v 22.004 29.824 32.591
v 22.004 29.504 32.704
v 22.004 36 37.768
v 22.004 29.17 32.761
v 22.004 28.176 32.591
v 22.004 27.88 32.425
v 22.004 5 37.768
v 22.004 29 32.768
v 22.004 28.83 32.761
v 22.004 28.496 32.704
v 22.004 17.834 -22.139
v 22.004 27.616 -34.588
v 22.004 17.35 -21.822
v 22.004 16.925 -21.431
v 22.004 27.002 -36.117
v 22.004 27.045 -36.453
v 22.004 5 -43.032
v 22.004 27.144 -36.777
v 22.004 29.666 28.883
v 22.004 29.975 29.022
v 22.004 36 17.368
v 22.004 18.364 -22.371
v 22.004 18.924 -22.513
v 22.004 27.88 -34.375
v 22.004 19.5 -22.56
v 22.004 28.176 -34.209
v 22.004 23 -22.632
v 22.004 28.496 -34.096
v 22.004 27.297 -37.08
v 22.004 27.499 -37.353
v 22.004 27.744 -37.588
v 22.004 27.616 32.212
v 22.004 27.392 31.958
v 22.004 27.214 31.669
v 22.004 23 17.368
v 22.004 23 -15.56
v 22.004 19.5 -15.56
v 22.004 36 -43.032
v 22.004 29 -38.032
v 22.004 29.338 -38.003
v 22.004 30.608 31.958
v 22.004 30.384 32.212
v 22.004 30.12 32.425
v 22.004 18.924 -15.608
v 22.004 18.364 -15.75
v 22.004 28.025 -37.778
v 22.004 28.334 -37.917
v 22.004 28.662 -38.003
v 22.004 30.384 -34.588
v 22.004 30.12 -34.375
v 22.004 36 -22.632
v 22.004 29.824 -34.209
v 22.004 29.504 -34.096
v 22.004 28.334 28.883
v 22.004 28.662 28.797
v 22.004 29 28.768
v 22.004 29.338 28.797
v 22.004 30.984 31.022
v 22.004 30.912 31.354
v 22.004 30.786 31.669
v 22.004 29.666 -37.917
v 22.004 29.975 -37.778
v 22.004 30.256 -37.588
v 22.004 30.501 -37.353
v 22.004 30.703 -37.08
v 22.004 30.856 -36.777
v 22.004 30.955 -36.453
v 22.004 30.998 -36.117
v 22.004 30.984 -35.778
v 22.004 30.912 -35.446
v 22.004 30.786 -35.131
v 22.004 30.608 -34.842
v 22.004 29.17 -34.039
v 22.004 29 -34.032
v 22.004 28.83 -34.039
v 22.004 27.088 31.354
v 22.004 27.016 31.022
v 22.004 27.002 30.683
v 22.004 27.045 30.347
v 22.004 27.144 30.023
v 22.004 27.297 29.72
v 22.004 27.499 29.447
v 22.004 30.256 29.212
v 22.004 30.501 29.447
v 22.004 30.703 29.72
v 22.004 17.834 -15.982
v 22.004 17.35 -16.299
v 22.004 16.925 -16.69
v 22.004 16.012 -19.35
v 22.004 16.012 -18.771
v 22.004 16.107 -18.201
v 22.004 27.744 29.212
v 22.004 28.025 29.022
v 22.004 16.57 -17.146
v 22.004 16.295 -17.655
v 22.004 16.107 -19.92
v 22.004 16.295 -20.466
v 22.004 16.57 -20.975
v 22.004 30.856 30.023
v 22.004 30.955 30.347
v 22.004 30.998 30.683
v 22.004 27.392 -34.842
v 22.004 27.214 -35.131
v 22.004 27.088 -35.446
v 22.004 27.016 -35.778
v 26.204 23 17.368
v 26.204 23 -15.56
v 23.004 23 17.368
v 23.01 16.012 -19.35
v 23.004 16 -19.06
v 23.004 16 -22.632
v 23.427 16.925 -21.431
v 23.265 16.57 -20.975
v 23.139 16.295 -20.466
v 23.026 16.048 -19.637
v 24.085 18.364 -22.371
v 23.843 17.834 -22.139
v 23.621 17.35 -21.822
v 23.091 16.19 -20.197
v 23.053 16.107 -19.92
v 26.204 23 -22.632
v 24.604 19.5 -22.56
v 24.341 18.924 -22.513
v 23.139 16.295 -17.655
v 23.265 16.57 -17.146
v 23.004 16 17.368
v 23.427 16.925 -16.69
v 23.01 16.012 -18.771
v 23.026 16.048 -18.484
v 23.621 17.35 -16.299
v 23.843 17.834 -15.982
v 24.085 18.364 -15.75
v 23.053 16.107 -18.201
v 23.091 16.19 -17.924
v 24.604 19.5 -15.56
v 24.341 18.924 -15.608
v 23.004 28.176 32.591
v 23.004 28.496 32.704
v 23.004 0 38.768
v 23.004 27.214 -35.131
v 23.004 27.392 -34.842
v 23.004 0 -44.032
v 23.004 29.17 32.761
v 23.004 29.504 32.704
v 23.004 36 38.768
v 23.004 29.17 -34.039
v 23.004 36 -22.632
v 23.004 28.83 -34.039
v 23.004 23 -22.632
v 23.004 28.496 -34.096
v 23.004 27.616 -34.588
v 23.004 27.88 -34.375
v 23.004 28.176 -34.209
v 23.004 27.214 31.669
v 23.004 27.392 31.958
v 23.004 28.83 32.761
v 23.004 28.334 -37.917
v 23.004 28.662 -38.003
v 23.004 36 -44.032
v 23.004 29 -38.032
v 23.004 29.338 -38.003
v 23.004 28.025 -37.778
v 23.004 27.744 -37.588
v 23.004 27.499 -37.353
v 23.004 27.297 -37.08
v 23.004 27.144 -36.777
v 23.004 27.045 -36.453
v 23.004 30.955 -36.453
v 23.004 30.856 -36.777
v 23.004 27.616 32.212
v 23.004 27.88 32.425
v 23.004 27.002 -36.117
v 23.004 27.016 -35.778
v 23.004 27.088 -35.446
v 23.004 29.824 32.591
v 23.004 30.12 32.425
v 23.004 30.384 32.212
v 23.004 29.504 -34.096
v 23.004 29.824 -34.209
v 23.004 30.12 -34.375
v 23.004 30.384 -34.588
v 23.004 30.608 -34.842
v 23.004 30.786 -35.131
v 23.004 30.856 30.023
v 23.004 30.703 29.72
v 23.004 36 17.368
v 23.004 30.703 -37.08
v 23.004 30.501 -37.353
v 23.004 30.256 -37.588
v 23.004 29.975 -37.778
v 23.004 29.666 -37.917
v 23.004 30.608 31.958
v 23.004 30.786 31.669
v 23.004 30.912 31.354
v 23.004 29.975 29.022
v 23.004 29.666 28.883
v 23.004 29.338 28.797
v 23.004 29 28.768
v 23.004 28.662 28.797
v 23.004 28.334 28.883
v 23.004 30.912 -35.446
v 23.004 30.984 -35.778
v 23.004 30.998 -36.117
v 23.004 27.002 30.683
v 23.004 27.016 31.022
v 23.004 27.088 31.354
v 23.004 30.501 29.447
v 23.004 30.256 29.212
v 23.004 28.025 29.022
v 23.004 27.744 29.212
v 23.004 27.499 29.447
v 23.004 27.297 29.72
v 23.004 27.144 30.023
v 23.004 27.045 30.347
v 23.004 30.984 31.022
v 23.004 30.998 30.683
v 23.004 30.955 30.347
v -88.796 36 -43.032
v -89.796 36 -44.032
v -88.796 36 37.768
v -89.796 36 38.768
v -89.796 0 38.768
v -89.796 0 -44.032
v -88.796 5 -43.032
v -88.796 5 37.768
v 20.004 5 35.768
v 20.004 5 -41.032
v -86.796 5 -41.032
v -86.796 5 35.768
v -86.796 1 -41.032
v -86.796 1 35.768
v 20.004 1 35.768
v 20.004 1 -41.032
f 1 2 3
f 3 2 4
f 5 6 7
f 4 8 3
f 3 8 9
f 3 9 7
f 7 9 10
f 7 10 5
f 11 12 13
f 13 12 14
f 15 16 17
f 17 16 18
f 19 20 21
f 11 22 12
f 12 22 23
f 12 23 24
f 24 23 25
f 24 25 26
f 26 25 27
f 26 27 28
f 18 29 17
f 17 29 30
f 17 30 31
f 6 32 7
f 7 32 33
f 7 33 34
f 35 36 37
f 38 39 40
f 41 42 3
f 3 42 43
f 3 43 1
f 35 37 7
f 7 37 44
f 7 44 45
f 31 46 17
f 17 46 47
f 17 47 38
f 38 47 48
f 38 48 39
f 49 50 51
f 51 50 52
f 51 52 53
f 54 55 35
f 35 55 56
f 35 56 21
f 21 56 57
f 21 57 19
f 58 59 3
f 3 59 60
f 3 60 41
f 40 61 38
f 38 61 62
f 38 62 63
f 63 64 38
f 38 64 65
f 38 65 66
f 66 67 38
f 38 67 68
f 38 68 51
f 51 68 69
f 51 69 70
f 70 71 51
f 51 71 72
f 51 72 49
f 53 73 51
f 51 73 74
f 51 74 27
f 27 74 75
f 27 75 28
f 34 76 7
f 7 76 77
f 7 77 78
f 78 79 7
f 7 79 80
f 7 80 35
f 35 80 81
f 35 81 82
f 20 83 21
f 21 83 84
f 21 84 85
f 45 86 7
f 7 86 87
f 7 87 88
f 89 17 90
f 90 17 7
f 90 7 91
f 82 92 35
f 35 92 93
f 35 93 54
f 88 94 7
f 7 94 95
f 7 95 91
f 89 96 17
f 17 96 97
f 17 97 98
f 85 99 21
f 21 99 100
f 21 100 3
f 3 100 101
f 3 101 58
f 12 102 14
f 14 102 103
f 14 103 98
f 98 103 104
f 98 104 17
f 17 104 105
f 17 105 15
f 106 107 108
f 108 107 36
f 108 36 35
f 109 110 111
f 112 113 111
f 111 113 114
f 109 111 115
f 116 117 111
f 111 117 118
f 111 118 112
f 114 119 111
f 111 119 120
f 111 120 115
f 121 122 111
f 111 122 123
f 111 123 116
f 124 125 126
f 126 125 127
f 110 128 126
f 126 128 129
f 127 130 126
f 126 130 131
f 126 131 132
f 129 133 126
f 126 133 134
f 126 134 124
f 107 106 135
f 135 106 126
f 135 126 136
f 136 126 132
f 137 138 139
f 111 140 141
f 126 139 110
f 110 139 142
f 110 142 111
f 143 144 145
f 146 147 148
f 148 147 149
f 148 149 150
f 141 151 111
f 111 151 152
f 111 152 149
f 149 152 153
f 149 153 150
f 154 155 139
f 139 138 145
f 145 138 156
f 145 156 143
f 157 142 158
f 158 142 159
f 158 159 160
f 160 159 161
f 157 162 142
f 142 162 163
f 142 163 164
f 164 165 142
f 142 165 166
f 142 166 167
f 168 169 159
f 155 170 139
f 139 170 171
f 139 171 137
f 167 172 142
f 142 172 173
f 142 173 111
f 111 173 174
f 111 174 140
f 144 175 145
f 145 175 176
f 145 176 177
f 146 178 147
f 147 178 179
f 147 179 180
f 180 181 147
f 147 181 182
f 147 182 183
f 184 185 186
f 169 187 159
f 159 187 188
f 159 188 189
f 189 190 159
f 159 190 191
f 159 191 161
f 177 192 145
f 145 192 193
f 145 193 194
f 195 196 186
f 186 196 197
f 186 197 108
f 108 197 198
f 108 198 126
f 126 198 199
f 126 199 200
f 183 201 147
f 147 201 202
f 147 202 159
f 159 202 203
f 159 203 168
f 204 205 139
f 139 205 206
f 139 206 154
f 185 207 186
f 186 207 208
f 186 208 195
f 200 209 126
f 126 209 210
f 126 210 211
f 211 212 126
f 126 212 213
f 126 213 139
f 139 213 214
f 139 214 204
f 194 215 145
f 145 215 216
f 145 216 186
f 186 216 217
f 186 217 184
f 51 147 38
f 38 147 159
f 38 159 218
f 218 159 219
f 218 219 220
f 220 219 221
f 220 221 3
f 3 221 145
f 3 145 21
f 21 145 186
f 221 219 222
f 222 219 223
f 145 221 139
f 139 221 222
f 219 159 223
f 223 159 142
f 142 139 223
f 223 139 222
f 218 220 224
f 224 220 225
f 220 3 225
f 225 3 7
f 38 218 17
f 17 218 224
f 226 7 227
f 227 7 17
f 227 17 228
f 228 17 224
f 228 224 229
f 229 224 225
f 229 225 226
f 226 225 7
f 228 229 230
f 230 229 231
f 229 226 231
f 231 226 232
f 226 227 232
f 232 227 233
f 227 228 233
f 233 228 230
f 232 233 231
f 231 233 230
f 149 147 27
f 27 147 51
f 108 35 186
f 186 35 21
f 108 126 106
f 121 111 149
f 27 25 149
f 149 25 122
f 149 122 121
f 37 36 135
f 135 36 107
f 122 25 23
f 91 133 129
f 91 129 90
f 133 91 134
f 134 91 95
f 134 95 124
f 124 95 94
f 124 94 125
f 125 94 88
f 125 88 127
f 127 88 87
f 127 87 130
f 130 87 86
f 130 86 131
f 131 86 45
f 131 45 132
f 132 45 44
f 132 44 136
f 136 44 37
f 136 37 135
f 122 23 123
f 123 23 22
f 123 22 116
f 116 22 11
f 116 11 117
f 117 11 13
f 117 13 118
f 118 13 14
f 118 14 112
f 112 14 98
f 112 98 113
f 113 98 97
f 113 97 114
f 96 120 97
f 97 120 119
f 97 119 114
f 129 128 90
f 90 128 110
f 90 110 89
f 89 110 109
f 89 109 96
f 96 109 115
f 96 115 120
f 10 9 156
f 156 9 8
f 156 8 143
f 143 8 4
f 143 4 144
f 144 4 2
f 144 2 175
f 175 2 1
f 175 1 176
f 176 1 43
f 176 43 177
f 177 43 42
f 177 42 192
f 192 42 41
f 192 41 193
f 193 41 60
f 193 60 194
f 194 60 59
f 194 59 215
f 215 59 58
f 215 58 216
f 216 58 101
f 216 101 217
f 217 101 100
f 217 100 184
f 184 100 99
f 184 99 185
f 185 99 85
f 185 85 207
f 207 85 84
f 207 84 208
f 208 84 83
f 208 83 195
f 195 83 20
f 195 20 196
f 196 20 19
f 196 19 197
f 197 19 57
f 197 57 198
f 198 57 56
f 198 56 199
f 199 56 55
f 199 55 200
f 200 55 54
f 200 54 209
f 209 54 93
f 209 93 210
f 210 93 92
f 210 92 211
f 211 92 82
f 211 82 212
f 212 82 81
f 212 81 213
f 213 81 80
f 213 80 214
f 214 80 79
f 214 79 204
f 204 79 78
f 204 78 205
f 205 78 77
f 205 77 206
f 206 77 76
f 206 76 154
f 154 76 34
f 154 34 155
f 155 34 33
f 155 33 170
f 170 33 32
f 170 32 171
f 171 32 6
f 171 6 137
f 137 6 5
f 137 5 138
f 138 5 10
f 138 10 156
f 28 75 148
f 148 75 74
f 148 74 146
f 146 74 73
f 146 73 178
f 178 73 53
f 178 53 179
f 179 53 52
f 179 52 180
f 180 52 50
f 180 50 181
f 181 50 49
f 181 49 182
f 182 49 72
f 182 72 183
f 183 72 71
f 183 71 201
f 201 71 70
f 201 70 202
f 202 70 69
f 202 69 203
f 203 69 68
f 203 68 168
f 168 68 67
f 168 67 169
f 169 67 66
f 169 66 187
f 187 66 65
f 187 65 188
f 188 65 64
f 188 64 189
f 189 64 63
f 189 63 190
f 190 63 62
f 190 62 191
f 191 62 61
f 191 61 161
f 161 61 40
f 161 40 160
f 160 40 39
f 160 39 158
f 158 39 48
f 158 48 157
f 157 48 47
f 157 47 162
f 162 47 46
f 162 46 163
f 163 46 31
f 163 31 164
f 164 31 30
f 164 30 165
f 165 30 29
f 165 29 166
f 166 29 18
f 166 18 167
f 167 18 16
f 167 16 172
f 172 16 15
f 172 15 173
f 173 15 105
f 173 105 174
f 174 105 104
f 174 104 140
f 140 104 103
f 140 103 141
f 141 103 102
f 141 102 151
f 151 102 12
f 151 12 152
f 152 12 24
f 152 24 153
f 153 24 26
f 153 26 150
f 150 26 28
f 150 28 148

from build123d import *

# Parameters (mm, degrees)
SKETCH1_W           = 112.8
SKETCH1_H           = 82.8
BOSS_EXTRUDE2_DEPTH = 36
SHELL1_T            = -1
SKETCH2_W           = 110.8
SKETCH2_H           = 80.8
SKETCH2_W_2         = 106.8
SKETCH2_H_2         = 76.8
BOSS_EXTRUDE3_DEPTH = 4
CUT_EXTRUDE1_REACH  = 114.8
SKETCH3_W           = 40
SKETCH3_H           = 13
BOSS_EXTRUDE4_DEPTH = 40
CUT_EXTRUDE2_REACH  = 6.2
CUT_EXTRUDE3_REACH  = 114.8
SKETCH7_R           = 2


with BuildPart() as part:
    # Sketch1 → Boss-Extrude2 (new body)
    with BuildSketch(Plane(origin=(0, 0, 0), x_dir=(1, 0, 0), z_dir=(0, 1, 0))):
        with Locations((-33.395774648, 2.631690141)):
            Rectangle(SKETCH1_W, SKETCH1_H)
    extrude(amount=BOSS_EXTRUDE2_DEPTH)

    # Shell1
    shell1_openings = [part.faces().sort_by_distance(p)[0] for p in [
        (-33.395774648, 36, -2.631690141),
    ]]
    offset(amount=SHELL1_T, openings=shell1_openings, kind=Kind.INTERSECTION)

    # Sketch2 → Boss-Extrude3 (add)
    with BuildSketch(Plane(origin=(0, 1, 0), x_dir=(1, 0, 0), z_dir=(0, 1, 0))):
        with Locations((-33.395774648, 2.631690141)):
            Rectangle(SKETCH2_W, SKETCH2_H)
        with Locations((-33.395774648, 2.631690141)):
            Rectangle(SKETCH2_W_2, SKETCH2_H_2, mode=Mode.SUBTRACT)
    extrude(amount=BOSS_EXTRUDE3_DEPTH)

    # Sketch3 → Cut-Extrude1 (cut, up to next)
    with BuildSketch(Plane(origin=(23.004225352, 0, 0), x_dir=(0, 0, -1), z_dir=(1, 0, 0)), mode=Mode.PRIVATE) as cut_extrude1_sk1:
        with Locations((2.631690141, 29.5)):
            Rectangle(SKETCH3_W, SKETCH3_H)
    cut_extrude1_tool1 = extrude(cut_extrude1_sk1.sketch, amount=-CUT_EXTRUDE1_REACH, mode=Mode.PRIVATE) & part.part
    add(cut_extrude1_tool1.solids().sort_by_distance((23.004225, 29.5, -2.63169))[0], mode=Mode.SUBTRACT)

    # Sketch4 → Boss-Extrude4 (add)
    with BuildSketch(Plane.XY.offset(-22.631690141)):
        Polygon((23.004225352, 23), (23.004225352, 16), (26.204225352, 23), align=None)
    extrude(amount=BOSS_EXTRUDE4_DEPTH)

    # Sketch6 → Cut-Extrude2 (cut, up to next)
    with BuildSketch(Plane.ZY.offset(-22.004225352), mode=Mode.PRIVATE) as cut_extrude2_sk1:
        with BuildLine():
            Line((-22.631690141, 23), (-22.560496611, 19.5))
            ThreePointArc((-22.560496611, 19.5), (-19.060496611, 16), (-15.560496611, 19.5))
            Line((-15.560496611, 19.5), (-15.560496611, 23))
            Line((-15.560496611, 23), (-22.631690141, 23))
        make_face()
    cut_extrude2_tool1 = extrude(cut_extrude2_sk1.sketch, amount=-CUT_EXTRUDE2_REACH, mode=Mode.PRIVATE) & part.part
    add(cut_extrude2_tool1.solids().sort_by_distance((22.004225, 19.832424, -19.070505))[0], mode=Mode.SUBTRACT)

    # Sketch7 → Cut-Extrude3 (cut, up to next)
    with BuildSketch(Plane(origin=(23.004225352, 0, 0), x_dir=(0, 0, -1), z_dir=(1, 0, 0)), mode=Mode.PRIVATE) as cut_extrude3_sk1:
        with Locations((36.031690141, 29)):
            Circle(SKETCH7_R)
    cut_extrude3_tool1 = extrude(cut_extrude3_sk1.sketch, amount=-CUT_EXTRUDE3_REACH, mode=Mode.PRIVATE) & part.part
    add(cut_extrude3_tool1.solids().sort_by_distance((23.004225, 29, -36.03169))[0], mode=Mode.SUBTRACT)
    # Sketch7 → Cut-Extrude3 (cut, up to next)
    with BuildSketch(Plane(origin=(23.004225352, 0, 0), x_dir=(0, 0, -1), z_dir=(1, 0, 0)), mode=Mode.PRIVATE) as cut_extrude3_sk2:
        with Locations((-30.768309859, 29)):
            Circle(SKETCH7_R)
    cut_extrude3_tool2 = extrude(cut_extrude3_sk2.sketch, amount=-CUT_EXTRUDE3_REACH, mode=Mode.PRIVATE) & part.part
    add(cut_extrude3_tool2.solids().sort_by_distance((23.004225, 29, 30.76831))[0], mode=Mode.SUBTRACT)


solid = part.part
